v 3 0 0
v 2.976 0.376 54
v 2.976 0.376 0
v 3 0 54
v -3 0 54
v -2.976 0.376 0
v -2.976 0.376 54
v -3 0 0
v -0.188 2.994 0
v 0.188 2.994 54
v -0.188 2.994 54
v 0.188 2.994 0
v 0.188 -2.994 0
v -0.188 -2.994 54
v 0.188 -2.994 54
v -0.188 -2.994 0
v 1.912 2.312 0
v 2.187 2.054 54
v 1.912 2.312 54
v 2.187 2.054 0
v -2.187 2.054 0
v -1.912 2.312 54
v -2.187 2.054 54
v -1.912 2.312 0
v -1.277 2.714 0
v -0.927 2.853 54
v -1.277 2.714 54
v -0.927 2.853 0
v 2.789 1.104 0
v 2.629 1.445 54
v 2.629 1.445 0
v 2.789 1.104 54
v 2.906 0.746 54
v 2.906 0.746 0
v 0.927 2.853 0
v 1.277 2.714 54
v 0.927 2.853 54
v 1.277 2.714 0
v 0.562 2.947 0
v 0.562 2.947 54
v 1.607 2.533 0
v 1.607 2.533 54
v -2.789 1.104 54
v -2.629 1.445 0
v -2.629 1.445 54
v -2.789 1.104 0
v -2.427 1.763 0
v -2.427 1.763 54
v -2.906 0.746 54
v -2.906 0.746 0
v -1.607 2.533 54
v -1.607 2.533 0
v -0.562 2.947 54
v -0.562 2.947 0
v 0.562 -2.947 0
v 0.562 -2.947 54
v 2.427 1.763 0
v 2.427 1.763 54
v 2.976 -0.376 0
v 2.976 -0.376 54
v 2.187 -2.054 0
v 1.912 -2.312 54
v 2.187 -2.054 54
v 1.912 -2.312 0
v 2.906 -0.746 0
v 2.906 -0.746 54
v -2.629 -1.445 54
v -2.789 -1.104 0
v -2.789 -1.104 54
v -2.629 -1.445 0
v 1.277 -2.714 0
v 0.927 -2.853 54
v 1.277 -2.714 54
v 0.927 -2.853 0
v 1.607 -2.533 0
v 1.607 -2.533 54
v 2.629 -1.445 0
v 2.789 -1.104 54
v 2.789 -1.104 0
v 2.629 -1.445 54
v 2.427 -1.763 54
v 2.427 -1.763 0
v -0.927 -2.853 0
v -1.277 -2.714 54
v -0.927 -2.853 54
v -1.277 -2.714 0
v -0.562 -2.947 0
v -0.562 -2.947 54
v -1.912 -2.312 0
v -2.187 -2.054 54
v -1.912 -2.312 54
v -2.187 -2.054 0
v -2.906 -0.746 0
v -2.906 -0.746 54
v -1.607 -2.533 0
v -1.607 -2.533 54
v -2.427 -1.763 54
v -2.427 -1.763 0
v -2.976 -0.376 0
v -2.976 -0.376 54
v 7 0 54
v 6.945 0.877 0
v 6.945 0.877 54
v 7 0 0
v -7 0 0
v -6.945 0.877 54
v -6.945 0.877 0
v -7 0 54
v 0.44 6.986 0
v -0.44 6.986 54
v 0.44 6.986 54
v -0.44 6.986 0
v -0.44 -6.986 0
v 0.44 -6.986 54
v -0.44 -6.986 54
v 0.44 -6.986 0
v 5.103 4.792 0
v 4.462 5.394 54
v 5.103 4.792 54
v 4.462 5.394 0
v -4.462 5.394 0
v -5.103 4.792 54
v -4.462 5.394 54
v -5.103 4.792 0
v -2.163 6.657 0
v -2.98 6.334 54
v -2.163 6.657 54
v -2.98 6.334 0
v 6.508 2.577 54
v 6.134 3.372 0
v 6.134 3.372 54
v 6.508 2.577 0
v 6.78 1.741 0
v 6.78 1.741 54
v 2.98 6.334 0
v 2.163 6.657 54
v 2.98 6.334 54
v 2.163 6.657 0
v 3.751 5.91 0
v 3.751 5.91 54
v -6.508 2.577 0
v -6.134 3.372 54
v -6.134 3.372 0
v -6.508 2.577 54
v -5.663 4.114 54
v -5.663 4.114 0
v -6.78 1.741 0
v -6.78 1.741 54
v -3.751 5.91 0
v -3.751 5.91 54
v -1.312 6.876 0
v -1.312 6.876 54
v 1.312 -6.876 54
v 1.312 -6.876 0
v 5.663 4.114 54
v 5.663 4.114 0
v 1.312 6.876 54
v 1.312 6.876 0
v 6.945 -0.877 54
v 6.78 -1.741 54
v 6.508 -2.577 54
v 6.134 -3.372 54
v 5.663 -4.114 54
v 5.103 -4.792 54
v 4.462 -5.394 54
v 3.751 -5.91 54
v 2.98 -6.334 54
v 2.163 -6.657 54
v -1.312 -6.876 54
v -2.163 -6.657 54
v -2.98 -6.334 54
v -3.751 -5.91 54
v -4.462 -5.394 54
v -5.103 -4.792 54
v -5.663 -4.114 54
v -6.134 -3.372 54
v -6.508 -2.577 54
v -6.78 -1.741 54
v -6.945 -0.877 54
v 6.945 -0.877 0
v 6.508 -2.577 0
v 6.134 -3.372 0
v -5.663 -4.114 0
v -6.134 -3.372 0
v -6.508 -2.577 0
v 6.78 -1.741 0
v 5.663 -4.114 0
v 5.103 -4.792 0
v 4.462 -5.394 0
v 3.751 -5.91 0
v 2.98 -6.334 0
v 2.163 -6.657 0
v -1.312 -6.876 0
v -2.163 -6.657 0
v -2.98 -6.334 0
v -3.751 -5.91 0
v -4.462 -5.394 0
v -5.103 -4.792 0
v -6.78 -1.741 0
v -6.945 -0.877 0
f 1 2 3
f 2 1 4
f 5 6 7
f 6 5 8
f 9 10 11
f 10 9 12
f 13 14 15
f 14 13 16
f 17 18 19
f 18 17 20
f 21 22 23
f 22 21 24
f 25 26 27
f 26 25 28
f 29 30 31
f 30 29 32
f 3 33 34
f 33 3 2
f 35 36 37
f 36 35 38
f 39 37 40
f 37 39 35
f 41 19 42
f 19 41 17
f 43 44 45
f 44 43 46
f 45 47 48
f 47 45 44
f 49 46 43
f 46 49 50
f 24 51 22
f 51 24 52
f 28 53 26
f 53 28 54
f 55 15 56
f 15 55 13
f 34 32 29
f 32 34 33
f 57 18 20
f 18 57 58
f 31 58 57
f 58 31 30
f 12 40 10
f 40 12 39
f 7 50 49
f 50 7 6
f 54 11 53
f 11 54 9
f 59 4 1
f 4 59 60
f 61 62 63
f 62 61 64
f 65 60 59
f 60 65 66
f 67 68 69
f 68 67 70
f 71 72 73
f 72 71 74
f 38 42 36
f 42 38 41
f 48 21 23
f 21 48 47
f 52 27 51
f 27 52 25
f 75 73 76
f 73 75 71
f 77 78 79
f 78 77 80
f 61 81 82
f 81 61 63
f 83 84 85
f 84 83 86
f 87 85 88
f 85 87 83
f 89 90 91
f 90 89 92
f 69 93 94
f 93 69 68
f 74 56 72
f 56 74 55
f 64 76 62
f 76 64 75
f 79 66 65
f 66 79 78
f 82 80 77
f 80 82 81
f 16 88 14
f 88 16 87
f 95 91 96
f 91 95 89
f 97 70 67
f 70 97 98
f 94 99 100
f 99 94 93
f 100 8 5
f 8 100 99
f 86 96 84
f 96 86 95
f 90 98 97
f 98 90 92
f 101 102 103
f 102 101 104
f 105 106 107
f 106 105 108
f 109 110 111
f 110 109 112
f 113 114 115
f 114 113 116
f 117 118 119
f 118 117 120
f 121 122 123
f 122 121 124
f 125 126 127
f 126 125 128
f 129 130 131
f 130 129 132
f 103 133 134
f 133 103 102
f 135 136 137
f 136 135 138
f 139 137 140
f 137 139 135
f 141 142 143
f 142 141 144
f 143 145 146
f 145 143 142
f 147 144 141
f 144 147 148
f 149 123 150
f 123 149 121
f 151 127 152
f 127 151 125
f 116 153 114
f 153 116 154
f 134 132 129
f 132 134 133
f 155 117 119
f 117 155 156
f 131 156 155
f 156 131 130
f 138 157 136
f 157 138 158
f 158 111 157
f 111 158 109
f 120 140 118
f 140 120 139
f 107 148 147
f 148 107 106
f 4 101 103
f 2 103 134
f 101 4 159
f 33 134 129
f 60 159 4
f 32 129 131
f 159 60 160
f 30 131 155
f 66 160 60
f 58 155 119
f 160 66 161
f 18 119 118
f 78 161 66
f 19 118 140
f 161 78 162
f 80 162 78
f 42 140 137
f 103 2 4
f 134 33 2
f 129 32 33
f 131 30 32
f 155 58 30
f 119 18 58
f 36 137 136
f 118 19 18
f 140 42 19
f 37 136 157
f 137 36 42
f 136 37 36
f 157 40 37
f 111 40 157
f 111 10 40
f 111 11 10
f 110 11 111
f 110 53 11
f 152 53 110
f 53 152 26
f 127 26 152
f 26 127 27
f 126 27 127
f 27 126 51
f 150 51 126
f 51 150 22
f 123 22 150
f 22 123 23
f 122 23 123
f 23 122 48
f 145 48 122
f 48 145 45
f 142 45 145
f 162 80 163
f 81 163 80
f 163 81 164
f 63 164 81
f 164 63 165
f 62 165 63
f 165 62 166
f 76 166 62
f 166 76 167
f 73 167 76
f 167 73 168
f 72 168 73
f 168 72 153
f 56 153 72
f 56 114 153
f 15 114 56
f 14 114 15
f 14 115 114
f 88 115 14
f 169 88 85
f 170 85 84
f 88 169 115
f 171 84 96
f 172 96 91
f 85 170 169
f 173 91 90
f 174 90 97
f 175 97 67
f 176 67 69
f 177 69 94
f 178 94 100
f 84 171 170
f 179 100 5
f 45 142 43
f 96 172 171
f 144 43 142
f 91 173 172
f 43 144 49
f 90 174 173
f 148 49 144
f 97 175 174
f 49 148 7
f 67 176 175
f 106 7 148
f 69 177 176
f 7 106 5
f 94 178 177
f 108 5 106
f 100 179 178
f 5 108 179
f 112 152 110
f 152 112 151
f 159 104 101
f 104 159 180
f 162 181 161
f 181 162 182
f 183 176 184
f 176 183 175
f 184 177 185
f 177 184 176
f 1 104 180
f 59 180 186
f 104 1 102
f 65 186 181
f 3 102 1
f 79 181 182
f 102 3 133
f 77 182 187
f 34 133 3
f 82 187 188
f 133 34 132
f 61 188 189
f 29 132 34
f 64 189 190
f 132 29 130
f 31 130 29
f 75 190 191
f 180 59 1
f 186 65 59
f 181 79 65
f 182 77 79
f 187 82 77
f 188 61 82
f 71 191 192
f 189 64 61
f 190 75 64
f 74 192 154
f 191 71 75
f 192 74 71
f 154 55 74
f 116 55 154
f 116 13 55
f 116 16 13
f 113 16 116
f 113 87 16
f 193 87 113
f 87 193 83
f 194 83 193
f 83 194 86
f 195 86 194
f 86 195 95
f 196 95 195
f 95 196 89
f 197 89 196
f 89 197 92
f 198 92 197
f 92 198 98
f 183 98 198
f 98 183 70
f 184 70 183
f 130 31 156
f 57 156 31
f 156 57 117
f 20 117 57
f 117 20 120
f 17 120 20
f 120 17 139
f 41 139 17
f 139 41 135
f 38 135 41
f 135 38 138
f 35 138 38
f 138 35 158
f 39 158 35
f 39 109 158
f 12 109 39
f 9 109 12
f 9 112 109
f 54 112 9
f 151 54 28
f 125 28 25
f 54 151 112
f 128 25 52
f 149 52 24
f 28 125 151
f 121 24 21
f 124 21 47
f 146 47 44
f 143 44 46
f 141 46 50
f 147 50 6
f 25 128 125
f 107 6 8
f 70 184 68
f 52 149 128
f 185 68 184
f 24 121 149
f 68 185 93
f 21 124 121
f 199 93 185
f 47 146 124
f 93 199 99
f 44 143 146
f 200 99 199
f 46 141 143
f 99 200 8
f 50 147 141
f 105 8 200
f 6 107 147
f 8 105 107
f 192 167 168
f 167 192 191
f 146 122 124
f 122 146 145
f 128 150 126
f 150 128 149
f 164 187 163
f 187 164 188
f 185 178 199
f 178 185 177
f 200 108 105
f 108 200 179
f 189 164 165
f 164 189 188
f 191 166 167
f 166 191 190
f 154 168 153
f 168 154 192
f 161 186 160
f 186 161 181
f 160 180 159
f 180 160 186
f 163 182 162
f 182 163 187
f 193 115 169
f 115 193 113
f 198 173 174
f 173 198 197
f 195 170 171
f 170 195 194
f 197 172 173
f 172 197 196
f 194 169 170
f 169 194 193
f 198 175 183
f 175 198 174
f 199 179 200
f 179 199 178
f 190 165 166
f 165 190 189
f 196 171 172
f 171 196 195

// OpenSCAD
$fn = 50;


difference() {
	union() {
		*color(alpha = 1.0000000000, c = "gray") {
			translate(v = [0, 7, 0]) {
				linear_extrude(height = 1) {
					text(font = "Arial:style=Bold", halign = "center", size = 4.5000000000, text = "COMMENT plate main", valign = "center");
				}
			}
		}
		cylinder(h = 54, r = 7.0000000000);
	}
	union() {
		*color(alpha = 1.0000000000, c = "gray") {
			translate(v = [0, 7, 0]) {
				linear_extrude(height = 1) {
					text(font = "Arial:style=Bold", halign = "center", size = 4.5000000000, text = "COMMENT holes main", valign = "center");
				}
			}
		}
		translate(v = [0, 0, -100]) {
			cylinder(h = 200, r = 3.0000000000);
		}
		translate(v = [0, 0, -100]) {
			cylinder(h = 200, r = 1.5000000000);
		}
	}
}
